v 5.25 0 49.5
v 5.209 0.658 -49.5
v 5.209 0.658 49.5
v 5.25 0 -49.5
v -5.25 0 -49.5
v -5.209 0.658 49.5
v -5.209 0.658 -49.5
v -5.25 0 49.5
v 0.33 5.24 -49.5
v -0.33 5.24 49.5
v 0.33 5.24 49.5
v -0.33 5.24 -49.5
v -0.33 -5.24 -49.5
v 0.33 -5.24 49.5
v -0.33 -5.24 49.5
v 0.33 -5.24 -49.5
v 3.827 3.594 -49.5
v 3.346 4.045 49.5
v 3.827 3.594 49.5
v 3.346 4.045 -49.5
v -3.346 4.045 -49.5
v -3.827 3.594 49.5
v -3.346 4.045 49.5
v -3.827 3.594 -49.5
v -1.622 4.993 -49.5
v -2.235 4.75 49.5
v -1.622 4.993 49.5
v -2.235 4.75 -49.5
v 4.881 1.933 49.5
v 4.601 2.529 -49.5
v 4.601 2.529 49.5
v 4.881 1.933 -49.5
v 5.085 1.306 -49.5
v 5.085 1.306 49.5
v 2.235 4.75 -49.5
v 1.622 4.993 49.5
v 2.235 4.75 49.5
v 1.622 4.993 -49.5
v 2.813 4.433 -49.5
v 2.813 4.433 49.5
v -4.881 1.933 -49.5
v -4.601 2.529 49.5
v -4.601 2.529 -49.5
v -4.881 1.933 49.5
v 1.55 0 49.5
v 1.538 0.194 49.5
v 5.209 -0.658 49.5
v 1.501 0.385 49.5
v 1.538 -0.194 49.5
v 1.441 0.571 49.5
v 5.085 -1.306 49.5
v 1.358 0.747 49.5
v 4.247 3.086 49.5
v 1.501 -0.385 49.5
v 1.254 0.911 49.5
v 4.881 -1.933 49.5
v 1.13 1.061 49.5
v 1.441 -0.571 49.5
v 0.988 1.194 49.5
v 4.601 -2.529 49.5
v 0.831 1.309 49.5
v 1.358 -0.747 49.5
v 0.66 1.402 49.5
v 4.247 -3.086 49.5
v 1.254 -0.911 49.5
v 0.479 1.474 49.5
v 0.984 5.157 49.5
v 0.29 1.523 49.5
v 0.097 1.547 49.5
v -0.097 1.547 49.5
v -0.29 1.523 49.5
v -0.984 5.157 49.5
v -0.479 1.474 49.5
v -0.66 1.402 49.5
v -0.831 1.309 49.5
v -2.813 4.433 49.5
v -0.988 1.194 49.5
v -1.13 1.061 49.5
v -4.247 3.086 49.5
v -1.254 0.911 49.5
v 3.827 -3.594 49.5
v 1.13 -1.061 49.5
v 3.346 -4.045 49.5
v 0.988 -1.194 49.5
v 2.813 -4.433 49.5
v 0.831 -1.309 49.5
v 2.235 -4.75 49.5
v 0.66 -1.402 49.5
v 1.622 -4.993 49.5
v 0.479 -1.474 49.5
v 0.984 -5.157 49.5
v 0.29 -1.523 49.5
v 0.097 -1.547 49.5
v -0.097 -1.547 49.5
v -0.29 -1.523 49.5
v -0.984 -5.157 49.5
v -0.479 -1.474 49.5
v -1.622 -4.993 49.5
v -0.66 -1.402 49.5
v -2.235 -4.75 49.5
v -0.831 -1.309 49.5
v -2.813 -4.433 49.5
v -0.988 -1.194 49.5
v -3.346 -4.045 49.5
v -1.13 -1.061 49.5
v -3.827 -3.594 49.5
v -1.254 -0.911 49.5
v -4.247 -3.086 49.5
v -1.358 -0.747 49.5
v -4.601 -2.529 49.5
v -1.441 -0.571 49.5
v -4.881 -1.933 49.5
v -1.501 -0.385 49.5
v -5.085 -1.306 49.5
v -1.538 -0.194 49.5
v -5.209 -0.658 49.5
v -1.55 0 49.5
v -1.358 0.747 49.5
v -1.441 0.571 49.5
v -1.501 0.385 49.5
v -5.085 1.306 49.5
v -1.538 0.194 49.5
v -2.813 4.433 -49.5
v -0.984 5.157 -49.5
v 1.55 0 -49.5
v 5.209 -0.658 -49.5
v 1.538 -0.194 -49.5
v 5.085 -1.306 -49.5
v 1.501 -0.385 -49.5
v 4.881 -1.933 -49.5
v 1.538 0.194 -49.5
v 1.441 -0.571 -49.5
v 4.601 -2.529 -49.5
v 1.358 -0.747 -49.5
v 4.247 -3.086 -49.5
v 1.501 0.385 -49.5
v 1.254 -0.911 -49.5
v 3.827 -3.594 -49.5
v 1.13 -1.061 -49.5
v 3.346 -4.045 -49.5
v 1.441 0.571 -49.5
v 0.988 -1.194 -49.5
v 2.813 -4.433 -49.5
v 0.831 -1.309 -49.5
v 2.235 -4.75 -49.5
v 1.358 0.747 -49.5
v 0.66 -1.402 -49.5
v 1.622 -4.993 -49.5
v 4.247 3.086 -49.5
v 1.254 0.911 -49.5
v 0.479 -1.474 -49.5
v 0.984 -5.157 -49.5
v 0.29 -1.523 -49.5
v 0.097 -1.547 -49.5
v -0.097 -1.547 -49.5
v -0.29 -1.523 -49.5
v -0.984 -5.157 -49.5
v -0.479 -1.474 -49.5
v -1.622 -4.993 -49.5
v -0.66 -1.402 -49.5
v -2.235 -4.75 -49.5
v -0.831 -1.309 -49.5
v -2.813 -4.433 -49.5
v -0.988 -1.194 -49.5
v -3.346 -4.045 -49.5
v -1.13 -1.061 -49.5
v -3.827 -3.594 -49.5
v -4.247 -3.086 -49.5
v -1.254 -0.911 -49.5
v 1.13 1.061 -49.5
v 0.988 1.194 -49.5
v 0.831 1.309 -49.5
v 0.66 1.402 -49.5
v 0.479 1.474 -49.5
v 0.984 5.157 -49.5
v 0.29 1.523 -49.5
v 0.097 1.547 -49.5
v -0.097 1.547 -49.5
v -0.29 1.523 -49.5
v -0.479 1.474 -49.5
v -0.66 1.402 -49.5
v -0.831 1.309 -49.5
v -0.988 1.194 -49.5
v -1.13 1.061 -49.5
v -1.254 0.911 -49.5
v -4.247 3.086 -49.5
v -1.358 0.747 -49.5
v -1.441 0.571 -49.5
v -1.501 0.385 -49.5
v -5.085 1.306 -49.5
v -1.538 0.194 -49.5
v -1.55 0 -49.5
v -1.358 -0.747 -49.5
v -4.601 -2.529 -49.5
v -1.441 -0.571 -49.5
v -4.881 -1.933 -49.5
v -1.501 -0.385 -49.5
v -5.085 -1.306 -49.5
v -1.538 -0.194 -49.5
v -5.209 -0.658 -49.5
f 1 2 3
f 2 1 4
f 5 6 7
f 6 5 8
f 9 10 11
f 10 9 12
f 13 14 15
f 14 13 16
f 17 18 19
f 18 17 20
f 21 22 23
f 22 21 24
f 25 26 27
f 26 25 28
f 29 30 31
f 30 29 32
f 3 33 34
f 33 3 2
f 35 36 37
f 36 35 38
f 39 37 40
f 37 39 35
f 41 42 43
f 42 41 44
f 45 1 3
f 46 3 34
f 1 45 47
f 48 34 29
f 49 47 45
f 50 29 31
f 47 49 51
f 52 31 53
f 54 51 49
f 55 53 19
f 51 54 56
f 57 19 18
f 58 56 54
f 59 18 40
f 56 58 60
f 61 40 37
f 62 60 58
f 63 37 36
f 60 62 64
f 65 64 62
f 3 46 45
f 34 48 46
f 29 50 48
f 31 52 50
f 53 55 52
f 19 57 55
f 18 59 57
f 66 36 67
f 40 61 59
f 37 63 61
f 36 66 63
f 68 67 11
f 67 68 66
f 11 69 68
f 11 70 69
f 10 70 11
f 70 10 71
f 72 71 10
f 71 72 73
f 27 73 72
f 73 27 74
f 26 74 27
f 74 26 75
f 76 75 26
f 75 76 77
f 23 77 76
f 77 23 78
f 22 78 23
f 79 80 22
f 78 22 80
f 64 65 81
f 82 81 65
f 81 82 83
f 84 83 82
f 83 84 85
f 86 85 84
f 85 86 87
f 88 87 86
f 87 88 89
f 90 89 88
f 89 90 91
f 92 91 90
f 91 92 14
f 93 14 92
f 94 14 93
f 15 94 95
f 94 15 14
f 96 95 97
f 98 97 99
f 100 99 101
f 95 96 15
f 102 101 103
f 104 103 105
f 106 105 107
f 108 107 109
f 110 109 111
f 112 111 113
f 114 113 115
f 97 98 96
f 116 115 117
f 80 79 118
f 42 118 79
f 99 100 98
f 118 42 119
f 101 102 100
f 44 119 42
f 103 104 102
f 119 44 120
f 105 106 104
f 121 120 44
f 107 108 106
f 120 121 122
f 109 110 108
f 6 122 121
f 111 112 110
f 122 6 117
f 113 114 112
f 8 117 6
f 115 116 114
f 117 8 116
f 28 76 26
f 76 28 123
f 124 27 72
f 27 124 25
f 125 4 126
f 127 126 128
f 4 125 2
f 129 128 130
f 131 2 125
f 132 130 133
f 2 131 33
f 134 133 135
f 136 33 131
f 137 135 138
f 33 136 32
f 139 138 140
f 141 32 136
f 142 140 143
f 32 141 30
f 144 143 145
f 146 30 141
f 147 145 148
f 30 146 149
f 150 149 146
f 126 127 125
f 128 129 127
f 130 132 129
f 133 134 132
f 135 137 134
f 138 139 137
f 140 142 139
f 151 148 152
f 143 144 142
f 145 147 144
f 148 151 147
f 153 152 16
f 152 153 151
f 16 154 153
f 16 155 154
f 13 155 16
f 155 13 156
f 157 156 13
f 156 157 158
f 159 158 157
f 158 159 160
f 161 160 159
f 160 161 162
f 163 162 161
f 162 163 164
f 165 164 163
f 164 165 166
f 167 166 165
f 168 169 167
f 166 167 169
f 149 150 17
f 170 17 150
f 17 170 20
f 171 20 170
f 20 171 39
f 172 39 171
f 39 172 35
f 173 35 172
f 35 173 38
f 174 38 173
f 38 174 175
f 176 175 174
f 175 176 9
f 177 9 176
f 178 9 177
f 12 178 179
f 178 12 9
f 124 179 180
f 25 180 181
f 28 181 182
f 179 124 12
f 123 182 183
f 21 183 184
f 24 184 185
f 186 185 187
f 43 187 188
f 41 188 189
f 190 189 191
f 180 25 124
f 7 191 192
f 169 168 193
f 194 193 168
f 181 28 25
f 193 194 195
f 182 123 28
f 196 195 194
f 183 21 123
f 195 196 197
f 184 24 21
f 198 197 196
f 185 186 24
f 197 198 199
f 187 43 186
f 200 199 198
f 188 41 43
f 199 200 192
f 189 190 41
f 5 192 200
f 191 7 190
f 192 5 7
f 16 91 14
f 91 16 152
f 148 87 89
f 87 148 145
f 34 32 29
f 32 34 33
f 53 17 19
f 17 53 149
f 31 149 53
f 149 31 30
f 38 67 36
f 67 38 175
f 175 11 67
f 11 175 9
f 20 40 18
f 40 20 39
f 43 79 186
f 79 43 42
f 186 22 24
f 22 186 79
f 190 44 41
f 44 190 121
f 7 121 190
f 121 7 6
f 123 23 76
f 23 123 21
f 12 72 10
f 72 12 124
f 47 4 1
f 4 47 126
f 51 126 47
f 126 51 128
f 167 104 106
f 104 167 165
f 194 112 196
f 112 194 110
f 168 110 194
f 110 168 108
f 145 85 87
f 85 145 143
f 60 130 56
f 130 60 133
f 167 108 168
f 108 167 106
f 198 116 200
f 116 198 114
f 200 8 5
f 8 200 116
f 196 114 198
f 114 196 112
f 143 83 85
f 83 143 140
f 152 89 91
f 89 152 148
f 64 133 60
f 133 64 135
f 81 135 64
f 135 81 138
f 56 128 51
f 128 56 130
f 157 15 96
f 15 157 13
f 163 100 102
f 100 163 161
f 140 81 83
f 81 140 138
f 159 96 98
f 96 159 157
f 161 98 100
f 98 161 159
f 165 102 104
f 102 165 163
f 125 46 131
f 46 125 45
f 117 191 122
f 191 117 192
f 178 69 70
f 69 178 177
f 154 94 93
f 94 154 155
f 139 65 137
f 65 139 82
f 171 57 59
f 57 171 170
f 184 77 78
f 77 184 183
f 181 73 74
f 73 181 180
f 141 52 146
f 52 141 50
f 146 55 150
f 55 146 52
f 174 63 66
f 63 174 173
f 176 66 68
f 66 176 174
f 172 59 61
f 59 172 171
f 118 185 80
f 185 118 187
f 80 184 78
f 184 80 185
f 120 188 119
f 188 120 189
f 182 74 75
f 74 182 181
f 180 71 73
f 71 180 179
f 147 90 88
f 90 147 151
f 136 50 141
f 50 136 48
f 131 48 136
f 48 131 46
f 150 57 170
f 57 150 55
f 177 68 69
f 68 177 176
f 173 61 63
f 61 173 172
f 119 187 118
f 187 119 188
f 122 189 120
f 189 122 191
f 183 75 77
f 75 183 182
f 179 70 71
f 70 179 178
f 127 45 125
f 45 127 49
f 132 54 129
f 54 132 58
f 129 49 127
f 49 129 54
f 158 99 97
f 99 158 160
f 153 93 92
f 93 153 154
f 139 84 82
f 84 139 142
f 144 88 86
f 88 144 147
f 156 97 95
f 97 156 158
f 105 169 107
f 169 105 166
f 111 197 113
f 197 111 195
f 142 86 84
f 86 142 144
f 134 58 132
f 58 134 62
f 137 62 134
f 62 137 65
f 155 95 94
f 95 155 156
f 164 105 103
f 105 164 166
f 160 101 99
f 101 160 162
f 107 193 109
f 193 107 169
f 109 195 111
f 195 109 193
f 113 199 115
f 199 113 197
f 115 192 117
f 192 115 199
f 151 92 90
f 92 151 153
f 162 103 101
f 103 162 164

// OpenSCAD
$fn = 50;


difference() {
	union() {
		translate(v = [0, 0, -49.5000000000]) {
			cylinder(h = 99, r = 5.2500000000);
		}
	}
	union() {
		translate(v = [0, 0, -100.0000000000]) {
			cylinder(h = 200, r = 1.5500000000);
		}
	}
}
